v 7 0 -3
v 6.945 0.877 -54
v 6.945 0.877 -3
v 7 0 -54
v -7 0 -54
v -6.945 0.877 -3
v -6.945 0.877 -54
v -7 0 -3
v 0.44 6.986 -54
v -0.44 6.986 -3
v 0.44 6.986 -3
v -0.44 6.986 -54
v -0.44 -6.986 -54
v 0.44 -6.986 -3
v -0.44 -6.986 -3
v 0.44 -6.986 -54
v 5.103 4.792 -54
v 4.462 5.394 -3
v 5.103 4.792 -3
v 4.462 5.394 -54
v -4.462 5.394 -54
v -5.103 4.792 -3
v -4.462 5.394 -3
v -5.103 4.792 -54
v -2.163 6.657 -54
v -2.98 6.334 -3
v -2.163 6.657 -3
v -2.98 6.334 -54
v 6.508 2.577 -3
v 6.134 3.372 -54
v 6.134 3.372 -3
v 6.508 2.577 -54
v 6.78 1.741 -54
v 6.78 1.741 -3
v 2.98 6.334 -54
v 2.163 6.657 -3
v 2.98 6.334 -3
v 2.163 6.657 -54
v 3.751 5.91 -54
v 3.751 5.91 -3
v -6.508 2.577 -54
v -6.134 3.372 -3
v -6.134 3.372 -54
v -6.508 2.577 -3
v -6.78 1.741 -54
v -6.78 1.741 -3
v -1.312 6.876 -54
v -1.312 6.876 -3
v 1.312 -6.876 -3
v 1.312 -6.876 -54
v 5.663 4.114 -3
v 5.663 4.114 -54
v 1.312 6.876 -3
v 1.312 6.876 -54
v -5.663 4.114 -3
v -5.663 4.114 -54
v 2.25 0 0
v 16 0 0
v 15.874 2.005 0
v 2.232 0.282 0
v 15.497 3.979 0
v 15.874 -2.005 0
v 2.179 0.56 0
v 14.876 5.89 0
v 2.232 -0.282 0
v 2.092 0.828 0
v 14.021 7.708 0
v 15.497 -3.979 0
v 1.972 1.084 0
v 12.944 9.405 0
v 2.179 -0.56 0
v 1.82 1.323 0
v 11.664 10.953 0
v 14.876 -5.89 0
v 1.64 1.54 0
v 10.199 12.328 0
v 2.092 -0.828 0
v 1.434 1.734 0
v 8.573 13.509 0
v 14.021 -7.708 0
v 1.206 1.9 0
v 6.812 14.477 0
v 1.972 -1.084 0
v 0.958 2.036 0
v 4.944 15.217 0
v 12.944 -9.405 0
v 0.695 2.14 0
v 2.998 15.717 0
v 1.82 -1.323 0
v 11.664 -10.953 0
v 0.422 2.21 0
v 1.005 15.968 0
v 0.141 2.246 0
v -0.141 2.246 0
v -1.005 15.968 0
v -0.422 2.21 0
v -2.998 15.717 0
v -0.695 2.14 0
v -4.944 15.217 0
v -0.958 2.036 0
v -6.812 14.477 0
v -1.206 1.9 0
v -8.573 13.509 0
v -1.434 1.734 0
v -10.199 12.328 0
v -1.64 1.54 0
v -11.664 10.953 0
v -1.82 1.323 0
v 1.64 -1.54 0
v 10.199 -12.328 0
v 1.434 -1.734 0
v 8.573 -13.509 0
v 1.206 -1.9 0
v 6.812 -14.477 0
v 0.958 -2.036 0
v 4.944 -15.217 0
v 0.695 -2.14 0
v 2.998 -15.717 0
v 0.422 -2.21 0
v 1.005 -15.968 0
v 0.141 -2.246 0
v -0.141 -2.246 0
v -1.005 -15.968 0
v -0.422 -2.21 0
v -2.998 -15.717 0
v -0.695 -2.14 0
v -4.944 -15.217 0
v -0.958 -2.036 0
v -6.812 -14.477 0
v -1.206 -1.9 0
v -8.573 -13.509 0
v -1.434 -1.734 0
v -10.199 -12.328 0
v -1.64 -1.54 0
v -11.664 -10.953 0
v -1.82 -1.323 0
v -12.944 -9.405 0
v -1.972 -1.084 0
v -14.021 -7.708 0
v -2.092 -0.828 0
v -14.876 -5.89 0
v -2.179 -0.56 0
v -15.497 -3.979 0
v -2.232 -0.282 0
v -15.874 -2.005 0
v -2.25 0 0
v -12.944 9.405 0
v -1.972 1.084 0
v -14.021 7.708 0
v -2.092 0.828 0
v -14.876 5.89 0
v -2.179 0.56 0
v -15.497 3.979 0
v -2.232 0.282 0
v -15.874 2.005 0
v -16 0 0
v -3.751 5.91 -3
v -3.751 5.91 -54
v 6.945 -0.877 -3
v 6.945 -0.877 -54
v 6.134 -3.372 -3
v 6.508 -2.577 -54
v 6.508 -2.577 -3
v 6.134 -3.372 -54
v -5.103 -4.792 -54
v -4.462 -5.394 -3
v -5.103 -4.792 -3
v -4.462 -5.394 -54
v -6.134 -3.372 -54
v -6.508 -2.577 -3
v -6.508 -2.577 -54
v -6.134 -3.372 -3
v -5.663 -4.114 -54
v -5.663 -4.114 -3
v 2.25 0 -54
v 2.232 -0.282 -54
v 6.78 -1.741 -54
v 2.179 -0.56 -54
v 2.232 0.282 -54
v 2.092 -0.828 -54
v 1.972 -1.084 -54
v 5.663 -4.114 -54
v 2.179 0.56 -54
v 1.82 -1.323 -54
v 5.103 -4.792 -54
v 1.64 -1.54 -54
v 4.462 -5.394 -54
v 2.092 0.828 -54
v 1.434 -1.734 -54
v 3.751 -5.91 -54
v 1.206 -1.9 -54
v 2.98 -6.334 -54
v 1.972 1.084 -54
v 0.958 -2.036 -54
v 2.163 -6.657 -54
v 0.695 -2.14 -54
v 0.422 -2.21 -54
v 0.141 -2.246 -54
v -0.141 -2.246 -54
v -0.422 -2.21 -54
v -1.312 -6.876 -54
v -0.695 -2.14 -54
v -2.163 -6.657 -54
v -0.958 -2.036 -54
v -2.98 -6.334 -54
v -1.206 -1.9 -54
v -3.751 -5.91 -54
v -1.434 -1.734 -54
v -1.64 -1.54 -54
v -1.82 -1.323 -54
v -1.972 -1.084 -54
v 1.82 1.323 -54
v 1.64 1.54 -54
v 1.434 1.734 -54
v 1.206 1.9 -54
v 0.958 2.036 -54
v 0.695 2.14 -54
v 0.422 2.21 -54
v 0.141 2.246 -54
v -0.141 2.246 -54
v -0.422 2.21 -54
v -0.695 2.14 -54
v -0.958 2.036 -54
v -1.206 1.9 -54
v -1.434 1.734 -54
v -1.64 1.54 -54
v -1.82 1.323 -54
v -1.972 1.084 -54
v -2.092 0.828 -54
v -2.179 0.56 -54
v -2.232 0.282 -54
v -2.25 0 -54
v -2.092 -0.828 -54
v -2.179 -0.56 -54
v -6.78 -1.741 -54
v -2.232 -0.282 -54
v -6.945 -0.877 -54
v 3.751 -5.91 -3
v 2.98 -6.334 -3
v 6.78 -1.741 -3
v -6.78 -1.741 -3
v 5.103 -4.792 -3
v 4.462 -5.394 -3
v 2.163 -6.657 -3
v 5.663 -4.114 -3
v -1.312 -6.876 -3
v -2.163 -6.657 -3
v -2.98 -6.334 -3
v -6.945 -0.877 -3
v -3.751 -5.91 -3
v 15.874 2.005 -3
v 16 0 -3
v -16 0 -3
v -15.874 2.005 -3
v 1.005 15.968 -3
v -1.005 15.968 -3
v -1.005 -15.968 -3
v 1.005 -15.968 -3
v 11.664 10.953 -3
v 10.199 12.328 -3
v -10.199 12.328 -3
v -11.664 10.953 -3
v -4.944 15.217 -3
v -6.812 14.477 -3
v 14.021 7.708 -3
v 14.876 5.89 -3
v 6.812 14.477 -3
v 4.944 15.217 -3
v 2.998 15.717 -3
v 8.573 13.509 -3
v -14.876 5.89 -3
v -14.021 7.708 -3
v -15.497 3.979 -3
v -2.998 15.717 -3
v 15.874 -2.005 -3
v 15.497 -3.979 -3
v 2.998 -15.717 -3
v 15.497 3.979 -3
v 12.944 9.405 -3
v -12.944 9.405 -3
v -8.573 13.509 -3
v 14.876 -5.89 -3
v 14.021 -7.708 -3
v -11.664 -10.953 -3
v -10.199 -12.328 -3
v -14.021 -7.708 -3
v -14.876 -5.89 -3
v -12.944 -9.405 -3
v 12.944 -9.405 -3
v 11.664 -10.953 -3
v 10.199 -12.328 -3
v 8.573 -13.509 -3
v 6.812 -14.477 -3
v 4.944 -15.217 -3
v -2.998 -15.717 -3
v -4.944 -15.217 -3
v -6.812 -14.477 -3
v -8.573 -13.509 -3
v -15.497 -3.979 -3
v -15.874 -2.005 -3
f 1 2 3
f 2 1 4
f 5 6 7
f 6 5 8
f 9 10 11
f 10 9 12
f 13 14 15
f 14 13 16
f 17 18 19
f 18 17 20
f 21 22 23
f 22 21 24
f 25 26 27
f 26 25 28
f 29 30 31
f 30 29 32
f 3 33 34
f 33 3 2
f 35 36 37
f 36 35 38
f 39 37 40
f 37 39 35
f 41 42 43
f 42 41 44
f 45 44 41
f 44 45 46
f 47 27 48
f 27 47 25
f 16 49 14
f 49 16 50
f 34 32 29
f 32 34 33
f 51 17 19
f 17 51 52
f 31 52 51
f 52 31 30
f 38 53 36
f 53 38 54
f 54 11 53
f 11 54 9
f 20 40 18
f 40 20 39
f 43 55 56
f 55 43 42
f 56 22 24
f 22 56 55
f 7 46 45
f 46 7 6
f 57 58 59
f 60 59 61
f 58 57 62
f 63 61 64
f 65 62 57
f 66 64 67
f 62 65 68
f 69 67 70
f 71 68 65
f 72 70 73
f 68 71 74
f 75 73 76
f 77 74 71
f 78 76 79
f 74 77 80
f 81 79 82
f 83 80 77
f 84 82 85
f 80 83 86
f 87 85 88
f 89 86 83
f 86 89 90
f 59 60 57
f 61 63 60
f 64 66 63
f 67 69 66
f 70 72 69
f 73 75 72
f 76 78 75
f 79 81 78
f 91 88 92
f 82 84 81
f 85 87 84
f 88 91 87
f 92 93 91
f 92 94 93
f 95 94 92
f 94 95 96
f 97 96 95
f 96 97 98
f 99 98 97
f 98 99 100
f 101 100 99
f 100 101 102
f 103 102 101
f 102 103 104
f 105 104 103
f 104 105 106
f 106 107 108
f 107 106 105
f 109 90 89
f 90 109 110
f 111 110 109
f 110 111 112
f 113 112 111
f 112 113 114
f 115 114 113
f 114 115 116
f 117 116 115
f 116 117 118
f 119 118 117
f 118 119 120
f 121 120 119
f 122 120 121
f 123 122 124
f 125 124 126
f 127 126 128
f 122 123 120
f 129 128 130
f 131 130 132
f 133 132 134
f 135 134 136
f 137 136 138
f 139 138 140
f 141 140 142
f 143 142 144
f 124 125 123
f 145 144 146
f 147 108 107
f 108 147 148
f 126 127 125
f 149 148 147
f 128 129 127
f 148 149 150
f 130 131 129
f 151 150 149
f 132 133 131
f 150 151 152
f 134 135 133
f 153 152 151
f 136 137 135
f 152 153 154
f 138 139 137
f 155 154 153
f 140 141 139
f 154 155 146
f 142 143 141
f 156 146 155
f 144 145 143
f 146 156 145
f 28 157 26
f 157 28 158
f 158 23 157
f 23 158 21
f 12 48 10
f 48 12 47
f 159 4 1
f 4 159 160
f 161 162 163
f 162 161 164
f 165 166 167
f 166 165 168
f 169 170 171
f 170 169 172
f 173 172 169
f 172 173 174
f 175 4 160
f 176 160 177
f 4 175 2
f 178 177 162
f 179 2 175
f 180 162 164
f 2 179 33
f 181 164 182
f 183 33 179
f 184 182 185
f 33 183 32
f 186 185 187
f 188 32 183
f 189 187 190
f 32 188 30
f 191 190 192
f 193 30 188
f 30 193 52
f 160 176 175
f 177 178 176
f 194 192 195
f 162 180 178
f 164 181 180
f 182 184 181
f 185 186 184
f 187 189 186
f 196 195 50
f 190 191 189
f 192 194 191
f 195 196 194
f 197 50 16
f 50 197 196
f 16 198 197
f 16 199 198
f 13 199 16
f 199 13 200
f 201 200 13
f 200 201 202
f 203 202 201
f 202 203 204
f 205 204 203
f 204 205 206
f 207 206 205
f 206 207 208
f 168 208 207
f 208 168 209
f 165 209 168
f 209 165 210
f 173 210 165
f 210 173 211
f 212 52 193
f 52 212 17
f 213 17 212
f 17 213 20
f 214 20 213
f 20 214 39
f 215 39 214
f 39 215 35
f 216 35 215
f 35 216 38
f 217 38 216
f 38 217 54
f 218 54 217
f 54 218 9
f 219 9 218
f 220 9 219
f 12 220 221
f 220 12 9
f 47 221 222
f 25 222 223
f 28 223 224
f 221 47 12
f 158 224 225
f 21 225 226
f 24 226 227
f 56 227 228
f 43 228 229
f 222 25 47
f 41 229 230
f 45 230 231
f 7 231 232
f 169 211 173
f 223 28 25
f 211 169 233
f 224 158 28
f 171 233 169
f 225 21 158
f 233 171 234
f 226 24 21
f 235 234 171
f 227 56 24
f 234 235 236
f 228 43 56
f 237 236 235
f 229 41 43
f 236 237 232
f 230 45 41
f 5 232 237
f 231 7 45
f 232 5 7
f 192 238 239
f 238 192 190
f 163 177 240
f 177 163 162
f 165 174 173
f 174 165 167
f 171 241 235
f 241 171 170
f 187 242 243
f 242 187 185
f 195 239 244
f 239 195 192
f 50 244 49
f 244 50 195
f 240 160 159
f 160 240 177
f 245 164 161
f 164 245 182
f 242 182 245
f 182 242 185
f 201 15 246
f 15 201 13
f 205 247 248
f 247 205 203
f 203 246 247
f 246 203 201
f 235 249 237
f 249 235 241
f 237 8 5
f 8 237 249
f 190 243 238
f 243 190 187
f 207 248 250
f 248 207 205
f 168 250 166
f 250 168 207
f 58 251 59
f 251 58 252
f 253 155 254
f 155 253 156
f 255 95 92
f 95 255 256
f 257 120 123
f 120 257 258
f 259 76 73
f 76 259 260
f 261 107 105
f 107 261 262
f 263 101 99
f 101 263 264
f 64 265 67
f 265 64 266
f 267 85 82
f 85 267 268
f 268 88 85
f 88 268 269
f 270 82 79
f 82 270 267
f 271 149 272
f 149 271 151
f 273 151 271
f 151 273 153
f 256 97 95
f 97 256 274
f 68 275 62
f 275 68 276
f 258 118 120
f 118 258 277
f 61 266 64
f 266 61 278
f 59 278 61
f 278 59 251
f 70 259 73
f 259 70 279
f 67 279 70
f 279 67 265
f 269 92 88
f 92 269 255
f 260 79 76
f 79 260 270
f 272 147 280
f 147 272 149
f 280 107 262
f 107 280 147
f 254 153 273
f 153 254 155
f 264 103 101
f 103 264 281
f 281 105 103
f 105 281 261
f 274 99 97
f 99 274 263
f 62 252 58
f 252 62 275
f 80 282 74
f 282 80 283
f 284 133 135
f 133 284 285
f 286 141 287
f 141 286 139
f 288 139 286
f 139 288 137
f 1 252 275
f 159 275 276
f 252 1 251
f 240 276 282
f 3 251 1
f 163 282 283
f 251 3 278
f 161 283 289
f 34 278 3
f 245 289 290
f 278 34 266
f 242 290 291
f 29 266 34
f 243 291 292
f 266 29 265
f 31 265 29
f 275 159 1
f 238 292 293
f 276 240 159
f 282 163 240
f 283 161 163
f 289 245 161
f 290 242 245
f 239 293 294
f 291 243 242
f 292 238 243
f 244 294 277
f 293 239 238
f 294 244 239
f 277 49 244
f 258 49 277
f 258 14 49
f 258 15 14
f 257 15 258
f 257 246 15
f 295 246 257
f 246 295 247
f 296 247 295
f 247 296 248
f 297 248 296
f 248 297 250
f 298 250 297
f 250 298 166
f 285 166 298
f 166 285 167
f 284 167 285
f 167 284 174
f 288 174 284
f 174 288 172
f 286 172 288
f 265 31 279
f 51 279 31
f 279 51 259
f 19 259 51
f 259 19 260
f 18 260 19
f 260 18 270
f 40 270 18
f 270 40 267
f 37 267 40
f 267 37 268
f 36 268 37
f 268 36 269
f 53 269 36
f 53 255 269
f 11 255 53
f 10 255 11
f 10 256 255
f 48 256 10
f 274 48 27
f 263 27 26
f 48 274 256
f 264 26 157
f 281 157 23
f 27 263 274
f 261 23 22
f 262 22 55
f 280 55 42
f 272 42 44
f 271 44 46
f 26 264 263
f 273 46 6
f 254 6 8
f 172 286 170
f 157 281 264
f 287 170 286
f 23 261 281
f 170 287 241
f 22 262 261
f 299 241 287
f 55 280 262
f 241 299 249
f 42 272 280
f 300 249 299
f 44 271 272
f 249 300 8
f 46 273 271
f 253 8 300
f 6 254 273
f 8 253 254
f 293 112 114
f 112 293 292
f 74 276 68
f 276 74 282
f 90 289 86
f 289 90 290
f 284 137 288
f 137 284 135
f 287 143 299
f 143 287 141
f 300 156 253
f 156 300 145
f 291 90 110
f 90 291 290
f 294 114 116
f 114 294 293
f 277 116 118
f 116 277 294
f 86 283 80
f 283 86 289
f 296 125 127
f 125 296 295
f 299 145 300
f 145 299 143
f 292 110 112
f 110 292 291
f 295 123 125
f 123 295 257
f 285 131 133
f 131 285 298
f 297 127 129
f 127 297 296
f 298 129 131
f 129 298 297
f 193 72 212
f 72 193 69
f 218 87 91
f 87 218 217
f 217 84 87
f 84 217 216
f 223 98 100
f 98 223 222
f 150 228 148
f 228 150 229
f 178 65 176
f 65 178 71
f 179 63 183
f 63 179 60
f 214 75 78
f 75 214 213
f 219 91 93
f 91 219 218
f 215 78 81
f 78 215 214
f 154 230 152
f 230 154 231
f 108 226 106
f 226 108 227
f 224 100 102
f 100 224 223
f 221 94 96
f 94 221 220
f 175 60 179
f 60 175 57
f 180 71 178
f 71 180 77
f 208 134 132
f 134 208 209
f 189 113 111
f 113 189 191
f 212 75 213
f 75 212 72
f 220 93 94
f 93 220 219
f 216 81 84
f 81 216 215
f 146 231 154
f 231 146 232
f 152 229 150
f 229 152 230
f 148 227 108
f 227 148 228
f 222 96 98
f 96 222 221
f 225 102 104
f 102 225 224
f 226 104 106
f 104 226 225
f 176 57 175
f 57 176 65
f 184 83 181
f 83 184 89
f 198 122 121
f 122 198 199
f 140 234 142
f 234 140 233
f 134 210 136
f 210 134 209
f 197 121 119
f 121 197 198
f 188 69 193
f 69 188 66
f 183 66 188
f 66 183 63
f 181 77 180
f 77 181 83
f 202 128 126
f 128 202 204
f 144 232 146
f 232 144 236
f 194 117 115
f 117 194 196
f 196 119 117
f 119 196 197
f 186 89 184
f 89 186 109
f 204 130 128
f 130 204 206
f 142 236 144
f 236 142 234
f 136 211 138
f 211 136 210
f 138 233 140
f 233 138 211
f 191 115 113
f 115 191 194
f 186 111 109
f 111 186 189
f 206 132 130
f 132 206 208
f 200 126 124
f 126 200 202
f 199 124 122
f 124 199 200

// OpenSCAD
$fn = 50;


difference() {
	union() {
		translate(v = [0, 0, -54.0000000000]) {
			cylinder(h = 54, r = 7.0000000000);
		}
		translate(v = [0, 0, -3.0000000000]) {
			cylinder(h = 3, r = 16.0000000000);
		}
	}
	union() {
		#translate(v = [0, 0, -54]) {
			cylinder(h = 54, r = 2.2500000000);
		}
	}
}
